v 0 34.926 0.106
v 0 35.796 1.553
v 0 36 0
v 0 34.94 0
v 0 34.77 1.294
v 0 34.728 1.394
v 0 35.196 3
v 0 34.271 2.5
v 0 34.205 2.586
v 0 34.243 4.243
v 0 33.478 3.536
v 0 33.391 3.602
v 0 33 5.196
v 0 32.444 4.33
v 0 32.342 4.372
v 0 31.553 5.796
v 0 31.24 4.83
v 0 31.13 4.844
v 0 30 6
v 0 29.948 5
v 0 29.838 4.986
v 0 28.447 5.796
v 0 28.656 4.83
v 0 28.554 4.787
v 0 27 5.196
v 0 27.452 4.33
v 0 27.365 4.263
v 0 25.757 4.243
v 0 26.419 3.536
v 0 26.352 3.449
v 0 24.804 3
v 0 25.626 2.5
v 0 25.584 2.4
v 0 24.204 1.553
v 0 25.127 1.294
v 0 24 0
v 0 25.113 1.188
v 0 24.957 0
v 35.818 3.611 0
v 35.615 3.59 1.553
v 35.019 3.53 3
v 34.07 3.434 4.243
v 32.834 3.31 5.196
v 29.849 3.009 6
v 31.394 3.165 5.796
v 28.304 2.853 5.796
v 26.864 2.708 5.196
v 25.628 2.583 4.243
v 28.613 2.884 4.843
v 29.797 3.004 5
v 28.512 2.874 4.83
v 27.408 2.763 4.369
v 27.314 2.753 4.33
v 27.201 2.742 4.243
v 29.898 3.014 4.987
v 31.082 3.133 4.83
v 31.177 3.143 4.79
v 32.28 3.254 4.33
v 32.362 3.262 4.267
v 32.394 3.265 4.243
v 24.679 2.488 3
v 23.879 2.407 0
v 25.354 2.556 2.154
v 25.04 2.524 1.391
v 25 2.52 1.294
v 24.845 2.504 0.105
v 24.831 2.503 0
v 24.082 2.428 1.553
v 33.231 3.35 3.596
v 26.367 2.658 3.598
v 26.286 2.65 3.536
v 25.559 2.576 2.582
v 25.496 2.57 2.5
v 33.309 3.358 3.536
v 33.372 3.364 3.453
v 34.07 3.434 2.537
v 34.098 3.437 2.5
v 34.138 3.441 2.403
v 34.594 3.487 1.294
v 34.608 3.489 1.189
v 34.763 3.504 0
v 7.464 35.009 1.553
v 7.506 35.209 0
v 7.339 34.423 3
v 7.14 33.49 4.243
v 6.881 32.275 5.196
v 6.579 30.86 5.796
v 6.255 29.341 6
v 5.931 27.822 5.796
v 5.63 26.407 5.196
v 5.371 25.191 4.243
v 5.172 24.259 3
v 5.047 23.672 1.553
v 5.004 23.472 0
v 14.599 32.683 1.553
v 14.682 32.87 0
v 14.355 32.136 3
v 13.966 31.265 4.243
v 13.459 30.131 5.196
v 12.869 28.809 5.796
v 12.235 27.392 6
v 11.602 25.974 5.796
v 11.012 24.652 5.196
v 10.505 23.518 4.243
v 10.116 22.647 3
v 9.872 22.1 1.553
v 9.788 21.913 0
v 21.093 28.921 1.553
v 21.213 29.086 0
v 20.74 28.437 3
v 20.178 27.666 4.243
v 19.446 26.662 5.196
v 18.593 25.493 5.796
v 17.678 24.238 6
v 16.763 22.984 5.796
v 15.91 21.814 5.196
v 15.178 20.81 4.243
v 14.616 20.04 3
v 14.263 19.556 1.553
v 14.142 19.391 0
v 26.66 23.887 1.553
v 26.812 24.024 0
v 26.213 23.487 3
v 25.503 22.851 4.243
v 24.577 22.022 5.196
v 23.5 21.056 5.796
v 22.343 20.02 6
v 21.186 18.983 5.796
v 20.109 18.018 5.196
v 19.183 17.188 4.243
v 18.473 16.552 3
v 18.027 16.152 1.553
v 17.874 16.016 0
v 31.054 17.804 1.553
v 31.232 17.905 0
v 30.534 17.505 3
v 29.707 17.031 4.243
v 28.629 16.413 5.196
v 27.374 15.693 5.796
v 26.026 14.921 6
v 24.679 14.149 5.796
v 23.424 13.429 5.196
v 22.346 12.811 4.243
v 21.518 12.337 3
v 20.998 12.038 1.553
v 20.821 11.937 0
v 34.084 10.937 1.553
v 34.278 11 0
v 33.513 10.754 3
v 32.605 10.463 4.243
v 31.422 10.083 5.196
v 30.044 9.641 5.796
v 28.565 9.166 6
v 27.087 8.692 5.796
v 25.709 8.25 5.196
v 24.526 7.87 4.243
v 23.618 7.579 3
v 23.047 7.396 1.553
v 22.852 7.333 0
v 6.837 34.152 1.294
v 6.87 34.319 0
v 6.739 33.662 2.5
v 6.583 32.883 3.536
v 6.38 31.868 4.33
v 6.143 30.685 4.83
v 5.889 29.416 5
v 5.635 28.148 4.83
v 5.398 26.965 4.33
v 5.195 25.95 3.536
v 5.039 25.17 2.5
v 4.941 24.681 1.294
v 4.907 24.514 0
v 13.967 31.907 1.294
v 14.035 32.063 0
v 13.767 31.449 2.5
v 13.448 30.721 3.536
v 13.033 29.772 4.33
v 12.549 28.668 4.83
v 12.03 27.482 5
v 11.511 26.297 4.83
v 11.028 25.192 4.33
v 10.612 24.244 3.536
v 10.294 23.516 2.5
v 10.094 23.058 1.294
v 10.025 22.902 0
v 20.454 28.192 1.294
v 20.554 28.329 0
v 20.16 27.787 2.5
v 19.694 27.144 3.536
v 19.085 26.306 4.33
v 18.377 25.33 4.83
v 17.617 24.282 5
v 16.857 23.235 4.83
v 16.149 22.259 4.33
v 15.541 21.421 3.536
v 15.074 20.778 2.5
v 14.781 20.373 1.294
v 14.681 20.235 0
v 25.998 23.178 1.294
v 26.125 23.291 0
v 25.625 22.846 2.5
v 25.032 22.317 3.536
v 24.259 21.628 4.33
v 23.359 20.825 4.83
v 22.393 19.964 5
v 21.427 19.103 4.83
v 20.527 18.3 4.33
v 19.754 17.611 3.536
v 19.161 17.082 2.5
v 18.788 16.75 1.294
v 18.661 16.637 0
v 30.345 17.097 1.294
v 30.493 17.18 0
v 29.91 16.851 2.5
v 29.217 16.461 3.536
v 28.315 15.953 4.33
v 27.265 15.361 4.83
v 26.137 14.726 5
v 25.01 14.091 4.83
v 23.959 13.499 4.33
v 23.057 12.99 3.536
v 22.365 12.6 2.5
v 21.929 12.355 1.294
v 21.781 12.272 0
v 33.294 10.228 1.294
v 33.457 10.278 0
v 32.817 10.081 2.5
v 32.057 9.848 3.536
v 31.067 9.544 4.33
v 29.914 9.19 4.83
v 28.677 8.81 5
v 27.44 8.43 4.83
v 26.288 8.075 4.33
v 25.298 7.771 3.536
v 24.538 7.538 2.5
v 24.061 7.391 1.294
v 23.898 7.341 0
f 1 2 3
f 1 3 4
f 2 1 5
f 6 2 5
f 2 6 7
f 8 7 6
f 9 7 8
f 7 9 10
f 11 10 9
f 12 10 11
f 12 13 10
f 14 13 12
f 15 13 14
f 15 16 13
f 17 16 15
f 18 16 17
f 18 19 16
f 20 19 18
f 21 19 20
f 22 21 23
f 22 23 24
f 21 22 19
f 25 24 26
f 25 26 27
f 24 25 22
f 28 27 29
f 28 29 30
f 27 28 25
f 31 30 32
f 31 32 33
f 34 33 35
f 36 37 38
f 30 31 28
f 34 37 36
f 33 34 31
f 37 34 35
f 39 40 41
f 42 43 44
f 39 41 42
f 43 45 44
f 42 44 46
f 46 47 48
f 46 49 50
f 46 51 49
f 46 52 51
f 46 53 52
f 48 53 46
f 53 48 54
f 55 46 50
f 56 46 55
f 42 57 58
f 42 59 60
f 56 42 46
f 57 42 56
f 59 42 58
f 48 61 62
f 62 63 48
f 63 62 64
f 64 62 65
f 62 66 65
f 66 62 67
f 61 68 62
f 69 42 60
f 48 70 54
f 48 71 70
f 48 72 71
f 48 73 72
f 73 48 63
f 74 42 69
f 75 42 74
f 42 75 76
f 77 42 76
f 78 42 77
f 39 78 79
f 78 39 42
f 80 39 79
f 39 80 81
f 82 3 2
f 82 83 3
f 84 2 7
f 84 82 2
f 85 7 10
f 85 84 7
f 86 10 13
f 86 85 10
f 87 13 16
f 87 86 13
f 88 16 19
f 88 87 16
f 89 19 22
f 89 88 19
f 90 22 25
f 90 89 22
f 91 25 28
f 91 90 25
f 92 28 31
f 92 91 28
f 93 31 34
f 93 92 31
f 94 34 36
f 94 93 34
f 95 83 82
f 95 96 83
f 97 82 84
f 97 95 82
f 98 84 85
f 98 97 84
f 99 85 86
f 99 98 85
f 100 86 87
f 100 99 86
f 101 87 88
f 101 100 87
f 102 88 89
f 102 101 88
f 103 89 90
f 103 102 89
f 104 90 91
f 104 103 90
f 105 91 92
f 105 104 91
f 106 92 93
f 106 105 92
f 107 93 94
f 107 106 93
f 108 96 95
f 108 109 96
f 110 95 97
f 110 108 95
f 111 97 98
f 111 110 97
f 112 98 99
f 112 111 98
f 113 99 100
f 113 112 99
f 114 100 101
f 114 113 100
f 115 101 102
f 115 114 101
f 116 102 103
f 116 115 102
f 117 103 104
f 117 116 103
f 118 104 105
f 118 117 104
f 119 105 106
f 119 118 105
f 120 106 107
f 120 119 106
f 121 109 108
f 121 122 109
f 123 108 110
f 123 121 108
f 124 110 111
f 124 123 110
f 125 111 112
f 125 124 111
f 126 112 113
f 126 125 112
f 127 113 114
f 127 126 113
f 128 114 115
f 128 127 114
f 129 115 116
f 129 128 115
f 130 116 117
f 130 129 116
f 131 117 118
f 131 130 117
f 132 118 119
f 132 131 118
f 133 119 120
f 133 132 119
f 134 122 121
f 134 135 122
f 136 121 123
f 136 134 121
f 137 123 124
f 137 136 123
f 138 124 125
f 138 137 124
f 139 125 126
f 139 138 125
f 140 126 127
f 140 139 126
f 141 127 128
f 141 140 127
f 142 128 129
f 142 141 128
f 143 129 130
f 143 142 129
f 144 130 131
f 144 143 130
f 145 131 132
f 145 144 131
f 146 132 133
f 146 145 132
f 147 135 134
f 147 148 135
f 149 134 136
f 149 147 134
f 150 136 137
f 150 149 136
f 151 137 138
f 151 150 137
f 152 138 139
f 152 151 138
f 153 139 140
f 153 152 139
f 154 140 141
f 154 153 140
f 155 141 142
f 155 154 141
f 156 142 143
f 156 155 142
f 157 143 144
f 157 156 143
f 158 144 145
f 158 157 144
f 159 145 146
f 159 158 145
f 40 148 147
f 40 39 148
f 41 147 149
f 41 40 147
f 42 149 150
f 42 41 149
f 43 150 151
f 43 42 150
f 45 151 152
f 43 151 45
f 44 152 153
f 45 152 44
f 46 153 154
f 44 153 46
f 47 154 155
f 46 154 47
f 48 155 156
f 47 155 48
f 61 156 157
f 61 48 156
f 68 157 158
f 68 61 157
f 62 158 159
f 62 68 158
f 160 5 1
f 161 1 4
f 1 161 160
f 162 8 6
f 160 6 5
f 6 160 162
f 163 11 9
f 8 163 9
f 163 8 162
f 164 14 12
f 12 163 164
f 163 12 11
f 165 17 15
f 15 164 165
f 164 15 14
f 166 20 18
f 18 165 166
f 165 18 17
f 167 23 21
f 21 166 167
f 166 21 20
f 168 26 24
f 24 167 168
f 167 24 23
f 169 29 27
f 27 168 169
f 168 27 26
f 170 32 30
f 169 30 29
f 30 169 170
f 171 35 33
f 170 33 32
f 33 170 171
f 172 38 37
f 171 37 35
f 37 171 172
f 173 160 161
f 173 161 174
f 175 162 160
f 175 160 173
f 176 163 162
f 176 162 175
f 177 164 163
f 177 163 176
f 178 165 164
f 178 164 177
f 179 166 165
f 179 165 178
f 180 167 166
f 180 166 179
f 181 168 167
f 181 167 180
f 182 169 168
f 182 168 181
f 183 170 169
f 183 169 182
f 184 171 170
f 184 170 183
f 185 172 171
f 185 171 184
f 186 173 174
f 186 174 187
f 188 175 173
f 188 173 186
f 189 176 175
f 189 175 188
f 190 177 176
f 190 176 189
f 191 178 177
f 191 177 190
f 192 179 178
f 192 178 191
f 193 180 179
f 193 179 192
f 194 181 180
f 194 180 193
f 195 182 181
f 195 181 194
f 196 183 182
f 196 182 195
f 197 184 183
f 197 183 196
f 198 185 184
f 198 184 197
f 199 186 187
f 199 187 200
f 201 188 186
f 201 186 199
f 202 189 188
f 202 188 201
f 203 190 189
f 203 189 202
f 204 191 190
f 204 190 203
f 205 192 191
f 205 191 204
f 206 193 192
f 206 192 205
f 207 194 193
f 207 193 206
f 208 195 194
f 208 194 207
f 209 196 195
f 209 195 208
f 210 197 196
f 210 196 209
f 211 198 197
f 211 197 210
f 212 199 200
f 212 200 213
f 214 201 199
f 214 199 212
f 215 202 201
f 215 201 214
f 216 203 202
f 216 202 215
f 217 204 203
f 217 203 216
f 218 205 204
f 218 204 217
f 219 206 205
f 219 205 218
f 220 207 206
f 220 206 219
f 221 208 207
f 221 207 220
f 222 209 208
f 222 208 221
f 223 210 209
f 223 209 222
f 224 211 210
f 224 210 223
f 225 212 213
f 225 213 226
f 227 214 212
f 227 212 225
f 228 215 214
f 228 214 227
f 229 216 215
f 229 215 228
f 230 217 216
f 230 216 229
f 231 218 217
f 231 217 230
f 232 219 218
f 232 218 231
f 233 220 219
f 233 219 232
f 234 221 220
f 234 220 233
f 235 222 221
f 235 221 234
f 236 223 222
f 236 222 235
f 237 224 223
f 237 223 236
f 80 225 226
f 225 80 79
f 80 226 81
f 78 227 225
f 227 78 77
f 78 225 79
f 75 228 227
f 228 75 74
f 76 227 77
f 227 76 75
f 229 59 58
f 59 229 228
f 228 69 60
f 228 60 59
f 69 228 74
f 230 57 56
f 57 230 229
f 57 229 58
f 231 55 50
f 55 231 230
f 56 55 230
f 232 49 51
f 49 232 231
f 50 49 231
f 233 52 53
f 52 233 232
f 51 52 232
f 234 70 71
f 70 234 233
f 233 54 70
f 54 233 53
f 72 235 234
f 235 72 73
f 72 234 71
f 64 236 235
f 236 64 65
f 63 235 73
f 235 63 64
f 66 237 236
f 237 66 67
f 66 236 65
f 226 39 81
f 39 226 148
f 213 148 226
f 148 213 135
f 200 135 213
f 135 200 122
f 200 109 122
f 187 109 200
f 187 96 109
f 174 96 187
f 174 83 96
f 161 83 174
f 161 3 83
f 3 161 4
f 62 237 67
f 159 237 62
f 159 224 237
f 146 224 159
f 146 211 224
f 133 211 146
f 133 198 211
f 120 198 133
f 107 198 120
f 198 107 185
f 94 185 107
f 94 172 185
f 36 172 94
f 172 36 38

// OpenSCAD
// file: ../build_environments.scad
// build_environments.scad: modules to build level sections
//

module pool(diameter=10.0, wall_height=2.0, step_width=3.0, connections=[])
{
    difference() {
        union() {
        difference() {
            cylinder(h=0.5,r1=diameter+step_width,r2=diameter+step_width,$fn=48);
            translate([0,0,-0.1])
                cylinder(h=0.7,r1=diameter,r2=diameter,$fn=48);
        }
        difference() {
            cylinder(h=wall_height,r1=diameter+step_width+1.0,r2=diameter+step_width+1.0,$fn=48);
            translate([0,0,-0.1])
                cylinder(h=wall_height+0.2,r1=diameter+step_width,r2=diameter+step_width,$fn=48);
        }
        }
    
        for (c = connections)
        {
            rotate([0,90,0]) {
                angle = atan2(c[1],c[0]);
                rotate([-angle,0,0]) {
                    cylinder(h=diameter+5.0,r1=c[2],r2=c[2],$fn=48);
                }
            }
        }
    }
}

module straight(length=10.0, width=2.0, dy1=0.0, dy2=0.0, dz=0.0)
{
    dims = [0, 0, 0, 0, 0, (dz/length)];
    matrix = [
        [ 1, dims[0], dims[1], 0 ],
        [ dims[2], 1, dims[4], 0 ],
        [ dims[5], dims[3], 1, 0 ],
        [ 0, 0, 0, 1 ]
    ];
    multmatrix(matrix)
    difference() {
        translate([dy1,0,0])
        union() {
            rotate([0,90,0]) {
                difference() {
                    cylinder(h=(length-dy1-dy2),r1=width+1.0,r2=width+1.0,$fn=24);
                    translate([0,0,-0.1])
                        cylinder(h=(length-dy1-dy2+0.2),r1=width,r2=width,$fn=24);
                }
                difference() {
                    cylinder(h=1.0,r1=width+2.0,r2=width+2.0,$fn=24);
                    translate([0,0,-0.1])
                        cylinder(h=1.2,r1=width,r2=width,$fn=24);
                }
                translate([0,0,(length-dy1-dy2)-1.0]) {
                    difference() {
                        cylinder(h=1.0,r1=width+2.0,r2=width+2.0,$fn=24);
                        translate([0,0,-0.1])
                            cylinder(h=1.2,r1=width,r2=width,$fn=24);
                    }
                }
            }
        }
        translate([0,0,-(2*width+4.0)/2])
            cube([3*length,3*length,2*width+4.0],center=true);
    }
}

module curve(p0=[0,0], center=[0,0], dir=1, angle=0.0, width=2.0)
{
    radius = sqrt((p0[0]-center[0])*(p0[0]-center[0]) + (p0[1]-center[1])*(p0[1]-center[1]));
    if (dir == 0) {
        difference() {
            rotate([0,0,-90])
            difference() {
                rotate_extrude(angle = angle, convexity = 10, $fn=32)
                    translate([radius, 0, 0])
                        circle(r = width+1.0,$fn=24);
                rotate([0,0,-1.0])
                    rotate_extrude(angle = angle+2.0, convexity = 10, $fn=32)
                        translate([radius, 0, 0])
                            circle(r = width,$fn=24);
            }
            translate([0,0,-(2*width+4.0)/2])
                cube([5*radius,5*radius,2*width+4.0],center=true);
        }
    }
    else {
        difference() {
            rotate([0,0,90])
            difference() {
                rotate_extrude(angle = -angle, convexity = 10, $fn=32)
                    translate([radius, 0, 0])
                        circle(r = width+1.0,$fn=24);
                rotate([0,0,1.0])
                    rotate_extrude(angle = -angle-2.0, convexity = 10, $fn=32)
                        translate([radius, 0, 0])
                            circle(r = width,$fn=24);
            }
            translate([0,0,-(2*width+4.0)/2])
                cube([5*radius,5*radius,2*width+4.0],center=true);
        }
    }

}

// test pool
//pool(diameter=12.0000, wall_height=3.0000, step_width=3.0000, connections=[[0.0000,-26.0000,2.0000], [23.6074,0.0000,2.0000]]);

// test straight, slope
//straight(length=26.0000, width=2.0000, dy1=11.8322, dy2=6.7082, dz=0.0000);
//straight(length=29.1549, width=12.0000, dy1=0.0000, dy2=0.0000, dz=-15.0000);

// test curve
//curve(p0=[23.6074, 0.0000], center=[23.6074, 5.0000], dir=0, angle=60.1011, width=2.0000);
//curve(p0=[33.6426, 12.4219], center=[37.9771, 9.9295], dir=1, angle=120.4627, width=2.0000);
// main file
use <../build_environments.scad>;
curve(p0=[21.3203, -112.0278], center=[22.1632, -142.0160], dir=1, angle=84.2437, width=5.0000);
